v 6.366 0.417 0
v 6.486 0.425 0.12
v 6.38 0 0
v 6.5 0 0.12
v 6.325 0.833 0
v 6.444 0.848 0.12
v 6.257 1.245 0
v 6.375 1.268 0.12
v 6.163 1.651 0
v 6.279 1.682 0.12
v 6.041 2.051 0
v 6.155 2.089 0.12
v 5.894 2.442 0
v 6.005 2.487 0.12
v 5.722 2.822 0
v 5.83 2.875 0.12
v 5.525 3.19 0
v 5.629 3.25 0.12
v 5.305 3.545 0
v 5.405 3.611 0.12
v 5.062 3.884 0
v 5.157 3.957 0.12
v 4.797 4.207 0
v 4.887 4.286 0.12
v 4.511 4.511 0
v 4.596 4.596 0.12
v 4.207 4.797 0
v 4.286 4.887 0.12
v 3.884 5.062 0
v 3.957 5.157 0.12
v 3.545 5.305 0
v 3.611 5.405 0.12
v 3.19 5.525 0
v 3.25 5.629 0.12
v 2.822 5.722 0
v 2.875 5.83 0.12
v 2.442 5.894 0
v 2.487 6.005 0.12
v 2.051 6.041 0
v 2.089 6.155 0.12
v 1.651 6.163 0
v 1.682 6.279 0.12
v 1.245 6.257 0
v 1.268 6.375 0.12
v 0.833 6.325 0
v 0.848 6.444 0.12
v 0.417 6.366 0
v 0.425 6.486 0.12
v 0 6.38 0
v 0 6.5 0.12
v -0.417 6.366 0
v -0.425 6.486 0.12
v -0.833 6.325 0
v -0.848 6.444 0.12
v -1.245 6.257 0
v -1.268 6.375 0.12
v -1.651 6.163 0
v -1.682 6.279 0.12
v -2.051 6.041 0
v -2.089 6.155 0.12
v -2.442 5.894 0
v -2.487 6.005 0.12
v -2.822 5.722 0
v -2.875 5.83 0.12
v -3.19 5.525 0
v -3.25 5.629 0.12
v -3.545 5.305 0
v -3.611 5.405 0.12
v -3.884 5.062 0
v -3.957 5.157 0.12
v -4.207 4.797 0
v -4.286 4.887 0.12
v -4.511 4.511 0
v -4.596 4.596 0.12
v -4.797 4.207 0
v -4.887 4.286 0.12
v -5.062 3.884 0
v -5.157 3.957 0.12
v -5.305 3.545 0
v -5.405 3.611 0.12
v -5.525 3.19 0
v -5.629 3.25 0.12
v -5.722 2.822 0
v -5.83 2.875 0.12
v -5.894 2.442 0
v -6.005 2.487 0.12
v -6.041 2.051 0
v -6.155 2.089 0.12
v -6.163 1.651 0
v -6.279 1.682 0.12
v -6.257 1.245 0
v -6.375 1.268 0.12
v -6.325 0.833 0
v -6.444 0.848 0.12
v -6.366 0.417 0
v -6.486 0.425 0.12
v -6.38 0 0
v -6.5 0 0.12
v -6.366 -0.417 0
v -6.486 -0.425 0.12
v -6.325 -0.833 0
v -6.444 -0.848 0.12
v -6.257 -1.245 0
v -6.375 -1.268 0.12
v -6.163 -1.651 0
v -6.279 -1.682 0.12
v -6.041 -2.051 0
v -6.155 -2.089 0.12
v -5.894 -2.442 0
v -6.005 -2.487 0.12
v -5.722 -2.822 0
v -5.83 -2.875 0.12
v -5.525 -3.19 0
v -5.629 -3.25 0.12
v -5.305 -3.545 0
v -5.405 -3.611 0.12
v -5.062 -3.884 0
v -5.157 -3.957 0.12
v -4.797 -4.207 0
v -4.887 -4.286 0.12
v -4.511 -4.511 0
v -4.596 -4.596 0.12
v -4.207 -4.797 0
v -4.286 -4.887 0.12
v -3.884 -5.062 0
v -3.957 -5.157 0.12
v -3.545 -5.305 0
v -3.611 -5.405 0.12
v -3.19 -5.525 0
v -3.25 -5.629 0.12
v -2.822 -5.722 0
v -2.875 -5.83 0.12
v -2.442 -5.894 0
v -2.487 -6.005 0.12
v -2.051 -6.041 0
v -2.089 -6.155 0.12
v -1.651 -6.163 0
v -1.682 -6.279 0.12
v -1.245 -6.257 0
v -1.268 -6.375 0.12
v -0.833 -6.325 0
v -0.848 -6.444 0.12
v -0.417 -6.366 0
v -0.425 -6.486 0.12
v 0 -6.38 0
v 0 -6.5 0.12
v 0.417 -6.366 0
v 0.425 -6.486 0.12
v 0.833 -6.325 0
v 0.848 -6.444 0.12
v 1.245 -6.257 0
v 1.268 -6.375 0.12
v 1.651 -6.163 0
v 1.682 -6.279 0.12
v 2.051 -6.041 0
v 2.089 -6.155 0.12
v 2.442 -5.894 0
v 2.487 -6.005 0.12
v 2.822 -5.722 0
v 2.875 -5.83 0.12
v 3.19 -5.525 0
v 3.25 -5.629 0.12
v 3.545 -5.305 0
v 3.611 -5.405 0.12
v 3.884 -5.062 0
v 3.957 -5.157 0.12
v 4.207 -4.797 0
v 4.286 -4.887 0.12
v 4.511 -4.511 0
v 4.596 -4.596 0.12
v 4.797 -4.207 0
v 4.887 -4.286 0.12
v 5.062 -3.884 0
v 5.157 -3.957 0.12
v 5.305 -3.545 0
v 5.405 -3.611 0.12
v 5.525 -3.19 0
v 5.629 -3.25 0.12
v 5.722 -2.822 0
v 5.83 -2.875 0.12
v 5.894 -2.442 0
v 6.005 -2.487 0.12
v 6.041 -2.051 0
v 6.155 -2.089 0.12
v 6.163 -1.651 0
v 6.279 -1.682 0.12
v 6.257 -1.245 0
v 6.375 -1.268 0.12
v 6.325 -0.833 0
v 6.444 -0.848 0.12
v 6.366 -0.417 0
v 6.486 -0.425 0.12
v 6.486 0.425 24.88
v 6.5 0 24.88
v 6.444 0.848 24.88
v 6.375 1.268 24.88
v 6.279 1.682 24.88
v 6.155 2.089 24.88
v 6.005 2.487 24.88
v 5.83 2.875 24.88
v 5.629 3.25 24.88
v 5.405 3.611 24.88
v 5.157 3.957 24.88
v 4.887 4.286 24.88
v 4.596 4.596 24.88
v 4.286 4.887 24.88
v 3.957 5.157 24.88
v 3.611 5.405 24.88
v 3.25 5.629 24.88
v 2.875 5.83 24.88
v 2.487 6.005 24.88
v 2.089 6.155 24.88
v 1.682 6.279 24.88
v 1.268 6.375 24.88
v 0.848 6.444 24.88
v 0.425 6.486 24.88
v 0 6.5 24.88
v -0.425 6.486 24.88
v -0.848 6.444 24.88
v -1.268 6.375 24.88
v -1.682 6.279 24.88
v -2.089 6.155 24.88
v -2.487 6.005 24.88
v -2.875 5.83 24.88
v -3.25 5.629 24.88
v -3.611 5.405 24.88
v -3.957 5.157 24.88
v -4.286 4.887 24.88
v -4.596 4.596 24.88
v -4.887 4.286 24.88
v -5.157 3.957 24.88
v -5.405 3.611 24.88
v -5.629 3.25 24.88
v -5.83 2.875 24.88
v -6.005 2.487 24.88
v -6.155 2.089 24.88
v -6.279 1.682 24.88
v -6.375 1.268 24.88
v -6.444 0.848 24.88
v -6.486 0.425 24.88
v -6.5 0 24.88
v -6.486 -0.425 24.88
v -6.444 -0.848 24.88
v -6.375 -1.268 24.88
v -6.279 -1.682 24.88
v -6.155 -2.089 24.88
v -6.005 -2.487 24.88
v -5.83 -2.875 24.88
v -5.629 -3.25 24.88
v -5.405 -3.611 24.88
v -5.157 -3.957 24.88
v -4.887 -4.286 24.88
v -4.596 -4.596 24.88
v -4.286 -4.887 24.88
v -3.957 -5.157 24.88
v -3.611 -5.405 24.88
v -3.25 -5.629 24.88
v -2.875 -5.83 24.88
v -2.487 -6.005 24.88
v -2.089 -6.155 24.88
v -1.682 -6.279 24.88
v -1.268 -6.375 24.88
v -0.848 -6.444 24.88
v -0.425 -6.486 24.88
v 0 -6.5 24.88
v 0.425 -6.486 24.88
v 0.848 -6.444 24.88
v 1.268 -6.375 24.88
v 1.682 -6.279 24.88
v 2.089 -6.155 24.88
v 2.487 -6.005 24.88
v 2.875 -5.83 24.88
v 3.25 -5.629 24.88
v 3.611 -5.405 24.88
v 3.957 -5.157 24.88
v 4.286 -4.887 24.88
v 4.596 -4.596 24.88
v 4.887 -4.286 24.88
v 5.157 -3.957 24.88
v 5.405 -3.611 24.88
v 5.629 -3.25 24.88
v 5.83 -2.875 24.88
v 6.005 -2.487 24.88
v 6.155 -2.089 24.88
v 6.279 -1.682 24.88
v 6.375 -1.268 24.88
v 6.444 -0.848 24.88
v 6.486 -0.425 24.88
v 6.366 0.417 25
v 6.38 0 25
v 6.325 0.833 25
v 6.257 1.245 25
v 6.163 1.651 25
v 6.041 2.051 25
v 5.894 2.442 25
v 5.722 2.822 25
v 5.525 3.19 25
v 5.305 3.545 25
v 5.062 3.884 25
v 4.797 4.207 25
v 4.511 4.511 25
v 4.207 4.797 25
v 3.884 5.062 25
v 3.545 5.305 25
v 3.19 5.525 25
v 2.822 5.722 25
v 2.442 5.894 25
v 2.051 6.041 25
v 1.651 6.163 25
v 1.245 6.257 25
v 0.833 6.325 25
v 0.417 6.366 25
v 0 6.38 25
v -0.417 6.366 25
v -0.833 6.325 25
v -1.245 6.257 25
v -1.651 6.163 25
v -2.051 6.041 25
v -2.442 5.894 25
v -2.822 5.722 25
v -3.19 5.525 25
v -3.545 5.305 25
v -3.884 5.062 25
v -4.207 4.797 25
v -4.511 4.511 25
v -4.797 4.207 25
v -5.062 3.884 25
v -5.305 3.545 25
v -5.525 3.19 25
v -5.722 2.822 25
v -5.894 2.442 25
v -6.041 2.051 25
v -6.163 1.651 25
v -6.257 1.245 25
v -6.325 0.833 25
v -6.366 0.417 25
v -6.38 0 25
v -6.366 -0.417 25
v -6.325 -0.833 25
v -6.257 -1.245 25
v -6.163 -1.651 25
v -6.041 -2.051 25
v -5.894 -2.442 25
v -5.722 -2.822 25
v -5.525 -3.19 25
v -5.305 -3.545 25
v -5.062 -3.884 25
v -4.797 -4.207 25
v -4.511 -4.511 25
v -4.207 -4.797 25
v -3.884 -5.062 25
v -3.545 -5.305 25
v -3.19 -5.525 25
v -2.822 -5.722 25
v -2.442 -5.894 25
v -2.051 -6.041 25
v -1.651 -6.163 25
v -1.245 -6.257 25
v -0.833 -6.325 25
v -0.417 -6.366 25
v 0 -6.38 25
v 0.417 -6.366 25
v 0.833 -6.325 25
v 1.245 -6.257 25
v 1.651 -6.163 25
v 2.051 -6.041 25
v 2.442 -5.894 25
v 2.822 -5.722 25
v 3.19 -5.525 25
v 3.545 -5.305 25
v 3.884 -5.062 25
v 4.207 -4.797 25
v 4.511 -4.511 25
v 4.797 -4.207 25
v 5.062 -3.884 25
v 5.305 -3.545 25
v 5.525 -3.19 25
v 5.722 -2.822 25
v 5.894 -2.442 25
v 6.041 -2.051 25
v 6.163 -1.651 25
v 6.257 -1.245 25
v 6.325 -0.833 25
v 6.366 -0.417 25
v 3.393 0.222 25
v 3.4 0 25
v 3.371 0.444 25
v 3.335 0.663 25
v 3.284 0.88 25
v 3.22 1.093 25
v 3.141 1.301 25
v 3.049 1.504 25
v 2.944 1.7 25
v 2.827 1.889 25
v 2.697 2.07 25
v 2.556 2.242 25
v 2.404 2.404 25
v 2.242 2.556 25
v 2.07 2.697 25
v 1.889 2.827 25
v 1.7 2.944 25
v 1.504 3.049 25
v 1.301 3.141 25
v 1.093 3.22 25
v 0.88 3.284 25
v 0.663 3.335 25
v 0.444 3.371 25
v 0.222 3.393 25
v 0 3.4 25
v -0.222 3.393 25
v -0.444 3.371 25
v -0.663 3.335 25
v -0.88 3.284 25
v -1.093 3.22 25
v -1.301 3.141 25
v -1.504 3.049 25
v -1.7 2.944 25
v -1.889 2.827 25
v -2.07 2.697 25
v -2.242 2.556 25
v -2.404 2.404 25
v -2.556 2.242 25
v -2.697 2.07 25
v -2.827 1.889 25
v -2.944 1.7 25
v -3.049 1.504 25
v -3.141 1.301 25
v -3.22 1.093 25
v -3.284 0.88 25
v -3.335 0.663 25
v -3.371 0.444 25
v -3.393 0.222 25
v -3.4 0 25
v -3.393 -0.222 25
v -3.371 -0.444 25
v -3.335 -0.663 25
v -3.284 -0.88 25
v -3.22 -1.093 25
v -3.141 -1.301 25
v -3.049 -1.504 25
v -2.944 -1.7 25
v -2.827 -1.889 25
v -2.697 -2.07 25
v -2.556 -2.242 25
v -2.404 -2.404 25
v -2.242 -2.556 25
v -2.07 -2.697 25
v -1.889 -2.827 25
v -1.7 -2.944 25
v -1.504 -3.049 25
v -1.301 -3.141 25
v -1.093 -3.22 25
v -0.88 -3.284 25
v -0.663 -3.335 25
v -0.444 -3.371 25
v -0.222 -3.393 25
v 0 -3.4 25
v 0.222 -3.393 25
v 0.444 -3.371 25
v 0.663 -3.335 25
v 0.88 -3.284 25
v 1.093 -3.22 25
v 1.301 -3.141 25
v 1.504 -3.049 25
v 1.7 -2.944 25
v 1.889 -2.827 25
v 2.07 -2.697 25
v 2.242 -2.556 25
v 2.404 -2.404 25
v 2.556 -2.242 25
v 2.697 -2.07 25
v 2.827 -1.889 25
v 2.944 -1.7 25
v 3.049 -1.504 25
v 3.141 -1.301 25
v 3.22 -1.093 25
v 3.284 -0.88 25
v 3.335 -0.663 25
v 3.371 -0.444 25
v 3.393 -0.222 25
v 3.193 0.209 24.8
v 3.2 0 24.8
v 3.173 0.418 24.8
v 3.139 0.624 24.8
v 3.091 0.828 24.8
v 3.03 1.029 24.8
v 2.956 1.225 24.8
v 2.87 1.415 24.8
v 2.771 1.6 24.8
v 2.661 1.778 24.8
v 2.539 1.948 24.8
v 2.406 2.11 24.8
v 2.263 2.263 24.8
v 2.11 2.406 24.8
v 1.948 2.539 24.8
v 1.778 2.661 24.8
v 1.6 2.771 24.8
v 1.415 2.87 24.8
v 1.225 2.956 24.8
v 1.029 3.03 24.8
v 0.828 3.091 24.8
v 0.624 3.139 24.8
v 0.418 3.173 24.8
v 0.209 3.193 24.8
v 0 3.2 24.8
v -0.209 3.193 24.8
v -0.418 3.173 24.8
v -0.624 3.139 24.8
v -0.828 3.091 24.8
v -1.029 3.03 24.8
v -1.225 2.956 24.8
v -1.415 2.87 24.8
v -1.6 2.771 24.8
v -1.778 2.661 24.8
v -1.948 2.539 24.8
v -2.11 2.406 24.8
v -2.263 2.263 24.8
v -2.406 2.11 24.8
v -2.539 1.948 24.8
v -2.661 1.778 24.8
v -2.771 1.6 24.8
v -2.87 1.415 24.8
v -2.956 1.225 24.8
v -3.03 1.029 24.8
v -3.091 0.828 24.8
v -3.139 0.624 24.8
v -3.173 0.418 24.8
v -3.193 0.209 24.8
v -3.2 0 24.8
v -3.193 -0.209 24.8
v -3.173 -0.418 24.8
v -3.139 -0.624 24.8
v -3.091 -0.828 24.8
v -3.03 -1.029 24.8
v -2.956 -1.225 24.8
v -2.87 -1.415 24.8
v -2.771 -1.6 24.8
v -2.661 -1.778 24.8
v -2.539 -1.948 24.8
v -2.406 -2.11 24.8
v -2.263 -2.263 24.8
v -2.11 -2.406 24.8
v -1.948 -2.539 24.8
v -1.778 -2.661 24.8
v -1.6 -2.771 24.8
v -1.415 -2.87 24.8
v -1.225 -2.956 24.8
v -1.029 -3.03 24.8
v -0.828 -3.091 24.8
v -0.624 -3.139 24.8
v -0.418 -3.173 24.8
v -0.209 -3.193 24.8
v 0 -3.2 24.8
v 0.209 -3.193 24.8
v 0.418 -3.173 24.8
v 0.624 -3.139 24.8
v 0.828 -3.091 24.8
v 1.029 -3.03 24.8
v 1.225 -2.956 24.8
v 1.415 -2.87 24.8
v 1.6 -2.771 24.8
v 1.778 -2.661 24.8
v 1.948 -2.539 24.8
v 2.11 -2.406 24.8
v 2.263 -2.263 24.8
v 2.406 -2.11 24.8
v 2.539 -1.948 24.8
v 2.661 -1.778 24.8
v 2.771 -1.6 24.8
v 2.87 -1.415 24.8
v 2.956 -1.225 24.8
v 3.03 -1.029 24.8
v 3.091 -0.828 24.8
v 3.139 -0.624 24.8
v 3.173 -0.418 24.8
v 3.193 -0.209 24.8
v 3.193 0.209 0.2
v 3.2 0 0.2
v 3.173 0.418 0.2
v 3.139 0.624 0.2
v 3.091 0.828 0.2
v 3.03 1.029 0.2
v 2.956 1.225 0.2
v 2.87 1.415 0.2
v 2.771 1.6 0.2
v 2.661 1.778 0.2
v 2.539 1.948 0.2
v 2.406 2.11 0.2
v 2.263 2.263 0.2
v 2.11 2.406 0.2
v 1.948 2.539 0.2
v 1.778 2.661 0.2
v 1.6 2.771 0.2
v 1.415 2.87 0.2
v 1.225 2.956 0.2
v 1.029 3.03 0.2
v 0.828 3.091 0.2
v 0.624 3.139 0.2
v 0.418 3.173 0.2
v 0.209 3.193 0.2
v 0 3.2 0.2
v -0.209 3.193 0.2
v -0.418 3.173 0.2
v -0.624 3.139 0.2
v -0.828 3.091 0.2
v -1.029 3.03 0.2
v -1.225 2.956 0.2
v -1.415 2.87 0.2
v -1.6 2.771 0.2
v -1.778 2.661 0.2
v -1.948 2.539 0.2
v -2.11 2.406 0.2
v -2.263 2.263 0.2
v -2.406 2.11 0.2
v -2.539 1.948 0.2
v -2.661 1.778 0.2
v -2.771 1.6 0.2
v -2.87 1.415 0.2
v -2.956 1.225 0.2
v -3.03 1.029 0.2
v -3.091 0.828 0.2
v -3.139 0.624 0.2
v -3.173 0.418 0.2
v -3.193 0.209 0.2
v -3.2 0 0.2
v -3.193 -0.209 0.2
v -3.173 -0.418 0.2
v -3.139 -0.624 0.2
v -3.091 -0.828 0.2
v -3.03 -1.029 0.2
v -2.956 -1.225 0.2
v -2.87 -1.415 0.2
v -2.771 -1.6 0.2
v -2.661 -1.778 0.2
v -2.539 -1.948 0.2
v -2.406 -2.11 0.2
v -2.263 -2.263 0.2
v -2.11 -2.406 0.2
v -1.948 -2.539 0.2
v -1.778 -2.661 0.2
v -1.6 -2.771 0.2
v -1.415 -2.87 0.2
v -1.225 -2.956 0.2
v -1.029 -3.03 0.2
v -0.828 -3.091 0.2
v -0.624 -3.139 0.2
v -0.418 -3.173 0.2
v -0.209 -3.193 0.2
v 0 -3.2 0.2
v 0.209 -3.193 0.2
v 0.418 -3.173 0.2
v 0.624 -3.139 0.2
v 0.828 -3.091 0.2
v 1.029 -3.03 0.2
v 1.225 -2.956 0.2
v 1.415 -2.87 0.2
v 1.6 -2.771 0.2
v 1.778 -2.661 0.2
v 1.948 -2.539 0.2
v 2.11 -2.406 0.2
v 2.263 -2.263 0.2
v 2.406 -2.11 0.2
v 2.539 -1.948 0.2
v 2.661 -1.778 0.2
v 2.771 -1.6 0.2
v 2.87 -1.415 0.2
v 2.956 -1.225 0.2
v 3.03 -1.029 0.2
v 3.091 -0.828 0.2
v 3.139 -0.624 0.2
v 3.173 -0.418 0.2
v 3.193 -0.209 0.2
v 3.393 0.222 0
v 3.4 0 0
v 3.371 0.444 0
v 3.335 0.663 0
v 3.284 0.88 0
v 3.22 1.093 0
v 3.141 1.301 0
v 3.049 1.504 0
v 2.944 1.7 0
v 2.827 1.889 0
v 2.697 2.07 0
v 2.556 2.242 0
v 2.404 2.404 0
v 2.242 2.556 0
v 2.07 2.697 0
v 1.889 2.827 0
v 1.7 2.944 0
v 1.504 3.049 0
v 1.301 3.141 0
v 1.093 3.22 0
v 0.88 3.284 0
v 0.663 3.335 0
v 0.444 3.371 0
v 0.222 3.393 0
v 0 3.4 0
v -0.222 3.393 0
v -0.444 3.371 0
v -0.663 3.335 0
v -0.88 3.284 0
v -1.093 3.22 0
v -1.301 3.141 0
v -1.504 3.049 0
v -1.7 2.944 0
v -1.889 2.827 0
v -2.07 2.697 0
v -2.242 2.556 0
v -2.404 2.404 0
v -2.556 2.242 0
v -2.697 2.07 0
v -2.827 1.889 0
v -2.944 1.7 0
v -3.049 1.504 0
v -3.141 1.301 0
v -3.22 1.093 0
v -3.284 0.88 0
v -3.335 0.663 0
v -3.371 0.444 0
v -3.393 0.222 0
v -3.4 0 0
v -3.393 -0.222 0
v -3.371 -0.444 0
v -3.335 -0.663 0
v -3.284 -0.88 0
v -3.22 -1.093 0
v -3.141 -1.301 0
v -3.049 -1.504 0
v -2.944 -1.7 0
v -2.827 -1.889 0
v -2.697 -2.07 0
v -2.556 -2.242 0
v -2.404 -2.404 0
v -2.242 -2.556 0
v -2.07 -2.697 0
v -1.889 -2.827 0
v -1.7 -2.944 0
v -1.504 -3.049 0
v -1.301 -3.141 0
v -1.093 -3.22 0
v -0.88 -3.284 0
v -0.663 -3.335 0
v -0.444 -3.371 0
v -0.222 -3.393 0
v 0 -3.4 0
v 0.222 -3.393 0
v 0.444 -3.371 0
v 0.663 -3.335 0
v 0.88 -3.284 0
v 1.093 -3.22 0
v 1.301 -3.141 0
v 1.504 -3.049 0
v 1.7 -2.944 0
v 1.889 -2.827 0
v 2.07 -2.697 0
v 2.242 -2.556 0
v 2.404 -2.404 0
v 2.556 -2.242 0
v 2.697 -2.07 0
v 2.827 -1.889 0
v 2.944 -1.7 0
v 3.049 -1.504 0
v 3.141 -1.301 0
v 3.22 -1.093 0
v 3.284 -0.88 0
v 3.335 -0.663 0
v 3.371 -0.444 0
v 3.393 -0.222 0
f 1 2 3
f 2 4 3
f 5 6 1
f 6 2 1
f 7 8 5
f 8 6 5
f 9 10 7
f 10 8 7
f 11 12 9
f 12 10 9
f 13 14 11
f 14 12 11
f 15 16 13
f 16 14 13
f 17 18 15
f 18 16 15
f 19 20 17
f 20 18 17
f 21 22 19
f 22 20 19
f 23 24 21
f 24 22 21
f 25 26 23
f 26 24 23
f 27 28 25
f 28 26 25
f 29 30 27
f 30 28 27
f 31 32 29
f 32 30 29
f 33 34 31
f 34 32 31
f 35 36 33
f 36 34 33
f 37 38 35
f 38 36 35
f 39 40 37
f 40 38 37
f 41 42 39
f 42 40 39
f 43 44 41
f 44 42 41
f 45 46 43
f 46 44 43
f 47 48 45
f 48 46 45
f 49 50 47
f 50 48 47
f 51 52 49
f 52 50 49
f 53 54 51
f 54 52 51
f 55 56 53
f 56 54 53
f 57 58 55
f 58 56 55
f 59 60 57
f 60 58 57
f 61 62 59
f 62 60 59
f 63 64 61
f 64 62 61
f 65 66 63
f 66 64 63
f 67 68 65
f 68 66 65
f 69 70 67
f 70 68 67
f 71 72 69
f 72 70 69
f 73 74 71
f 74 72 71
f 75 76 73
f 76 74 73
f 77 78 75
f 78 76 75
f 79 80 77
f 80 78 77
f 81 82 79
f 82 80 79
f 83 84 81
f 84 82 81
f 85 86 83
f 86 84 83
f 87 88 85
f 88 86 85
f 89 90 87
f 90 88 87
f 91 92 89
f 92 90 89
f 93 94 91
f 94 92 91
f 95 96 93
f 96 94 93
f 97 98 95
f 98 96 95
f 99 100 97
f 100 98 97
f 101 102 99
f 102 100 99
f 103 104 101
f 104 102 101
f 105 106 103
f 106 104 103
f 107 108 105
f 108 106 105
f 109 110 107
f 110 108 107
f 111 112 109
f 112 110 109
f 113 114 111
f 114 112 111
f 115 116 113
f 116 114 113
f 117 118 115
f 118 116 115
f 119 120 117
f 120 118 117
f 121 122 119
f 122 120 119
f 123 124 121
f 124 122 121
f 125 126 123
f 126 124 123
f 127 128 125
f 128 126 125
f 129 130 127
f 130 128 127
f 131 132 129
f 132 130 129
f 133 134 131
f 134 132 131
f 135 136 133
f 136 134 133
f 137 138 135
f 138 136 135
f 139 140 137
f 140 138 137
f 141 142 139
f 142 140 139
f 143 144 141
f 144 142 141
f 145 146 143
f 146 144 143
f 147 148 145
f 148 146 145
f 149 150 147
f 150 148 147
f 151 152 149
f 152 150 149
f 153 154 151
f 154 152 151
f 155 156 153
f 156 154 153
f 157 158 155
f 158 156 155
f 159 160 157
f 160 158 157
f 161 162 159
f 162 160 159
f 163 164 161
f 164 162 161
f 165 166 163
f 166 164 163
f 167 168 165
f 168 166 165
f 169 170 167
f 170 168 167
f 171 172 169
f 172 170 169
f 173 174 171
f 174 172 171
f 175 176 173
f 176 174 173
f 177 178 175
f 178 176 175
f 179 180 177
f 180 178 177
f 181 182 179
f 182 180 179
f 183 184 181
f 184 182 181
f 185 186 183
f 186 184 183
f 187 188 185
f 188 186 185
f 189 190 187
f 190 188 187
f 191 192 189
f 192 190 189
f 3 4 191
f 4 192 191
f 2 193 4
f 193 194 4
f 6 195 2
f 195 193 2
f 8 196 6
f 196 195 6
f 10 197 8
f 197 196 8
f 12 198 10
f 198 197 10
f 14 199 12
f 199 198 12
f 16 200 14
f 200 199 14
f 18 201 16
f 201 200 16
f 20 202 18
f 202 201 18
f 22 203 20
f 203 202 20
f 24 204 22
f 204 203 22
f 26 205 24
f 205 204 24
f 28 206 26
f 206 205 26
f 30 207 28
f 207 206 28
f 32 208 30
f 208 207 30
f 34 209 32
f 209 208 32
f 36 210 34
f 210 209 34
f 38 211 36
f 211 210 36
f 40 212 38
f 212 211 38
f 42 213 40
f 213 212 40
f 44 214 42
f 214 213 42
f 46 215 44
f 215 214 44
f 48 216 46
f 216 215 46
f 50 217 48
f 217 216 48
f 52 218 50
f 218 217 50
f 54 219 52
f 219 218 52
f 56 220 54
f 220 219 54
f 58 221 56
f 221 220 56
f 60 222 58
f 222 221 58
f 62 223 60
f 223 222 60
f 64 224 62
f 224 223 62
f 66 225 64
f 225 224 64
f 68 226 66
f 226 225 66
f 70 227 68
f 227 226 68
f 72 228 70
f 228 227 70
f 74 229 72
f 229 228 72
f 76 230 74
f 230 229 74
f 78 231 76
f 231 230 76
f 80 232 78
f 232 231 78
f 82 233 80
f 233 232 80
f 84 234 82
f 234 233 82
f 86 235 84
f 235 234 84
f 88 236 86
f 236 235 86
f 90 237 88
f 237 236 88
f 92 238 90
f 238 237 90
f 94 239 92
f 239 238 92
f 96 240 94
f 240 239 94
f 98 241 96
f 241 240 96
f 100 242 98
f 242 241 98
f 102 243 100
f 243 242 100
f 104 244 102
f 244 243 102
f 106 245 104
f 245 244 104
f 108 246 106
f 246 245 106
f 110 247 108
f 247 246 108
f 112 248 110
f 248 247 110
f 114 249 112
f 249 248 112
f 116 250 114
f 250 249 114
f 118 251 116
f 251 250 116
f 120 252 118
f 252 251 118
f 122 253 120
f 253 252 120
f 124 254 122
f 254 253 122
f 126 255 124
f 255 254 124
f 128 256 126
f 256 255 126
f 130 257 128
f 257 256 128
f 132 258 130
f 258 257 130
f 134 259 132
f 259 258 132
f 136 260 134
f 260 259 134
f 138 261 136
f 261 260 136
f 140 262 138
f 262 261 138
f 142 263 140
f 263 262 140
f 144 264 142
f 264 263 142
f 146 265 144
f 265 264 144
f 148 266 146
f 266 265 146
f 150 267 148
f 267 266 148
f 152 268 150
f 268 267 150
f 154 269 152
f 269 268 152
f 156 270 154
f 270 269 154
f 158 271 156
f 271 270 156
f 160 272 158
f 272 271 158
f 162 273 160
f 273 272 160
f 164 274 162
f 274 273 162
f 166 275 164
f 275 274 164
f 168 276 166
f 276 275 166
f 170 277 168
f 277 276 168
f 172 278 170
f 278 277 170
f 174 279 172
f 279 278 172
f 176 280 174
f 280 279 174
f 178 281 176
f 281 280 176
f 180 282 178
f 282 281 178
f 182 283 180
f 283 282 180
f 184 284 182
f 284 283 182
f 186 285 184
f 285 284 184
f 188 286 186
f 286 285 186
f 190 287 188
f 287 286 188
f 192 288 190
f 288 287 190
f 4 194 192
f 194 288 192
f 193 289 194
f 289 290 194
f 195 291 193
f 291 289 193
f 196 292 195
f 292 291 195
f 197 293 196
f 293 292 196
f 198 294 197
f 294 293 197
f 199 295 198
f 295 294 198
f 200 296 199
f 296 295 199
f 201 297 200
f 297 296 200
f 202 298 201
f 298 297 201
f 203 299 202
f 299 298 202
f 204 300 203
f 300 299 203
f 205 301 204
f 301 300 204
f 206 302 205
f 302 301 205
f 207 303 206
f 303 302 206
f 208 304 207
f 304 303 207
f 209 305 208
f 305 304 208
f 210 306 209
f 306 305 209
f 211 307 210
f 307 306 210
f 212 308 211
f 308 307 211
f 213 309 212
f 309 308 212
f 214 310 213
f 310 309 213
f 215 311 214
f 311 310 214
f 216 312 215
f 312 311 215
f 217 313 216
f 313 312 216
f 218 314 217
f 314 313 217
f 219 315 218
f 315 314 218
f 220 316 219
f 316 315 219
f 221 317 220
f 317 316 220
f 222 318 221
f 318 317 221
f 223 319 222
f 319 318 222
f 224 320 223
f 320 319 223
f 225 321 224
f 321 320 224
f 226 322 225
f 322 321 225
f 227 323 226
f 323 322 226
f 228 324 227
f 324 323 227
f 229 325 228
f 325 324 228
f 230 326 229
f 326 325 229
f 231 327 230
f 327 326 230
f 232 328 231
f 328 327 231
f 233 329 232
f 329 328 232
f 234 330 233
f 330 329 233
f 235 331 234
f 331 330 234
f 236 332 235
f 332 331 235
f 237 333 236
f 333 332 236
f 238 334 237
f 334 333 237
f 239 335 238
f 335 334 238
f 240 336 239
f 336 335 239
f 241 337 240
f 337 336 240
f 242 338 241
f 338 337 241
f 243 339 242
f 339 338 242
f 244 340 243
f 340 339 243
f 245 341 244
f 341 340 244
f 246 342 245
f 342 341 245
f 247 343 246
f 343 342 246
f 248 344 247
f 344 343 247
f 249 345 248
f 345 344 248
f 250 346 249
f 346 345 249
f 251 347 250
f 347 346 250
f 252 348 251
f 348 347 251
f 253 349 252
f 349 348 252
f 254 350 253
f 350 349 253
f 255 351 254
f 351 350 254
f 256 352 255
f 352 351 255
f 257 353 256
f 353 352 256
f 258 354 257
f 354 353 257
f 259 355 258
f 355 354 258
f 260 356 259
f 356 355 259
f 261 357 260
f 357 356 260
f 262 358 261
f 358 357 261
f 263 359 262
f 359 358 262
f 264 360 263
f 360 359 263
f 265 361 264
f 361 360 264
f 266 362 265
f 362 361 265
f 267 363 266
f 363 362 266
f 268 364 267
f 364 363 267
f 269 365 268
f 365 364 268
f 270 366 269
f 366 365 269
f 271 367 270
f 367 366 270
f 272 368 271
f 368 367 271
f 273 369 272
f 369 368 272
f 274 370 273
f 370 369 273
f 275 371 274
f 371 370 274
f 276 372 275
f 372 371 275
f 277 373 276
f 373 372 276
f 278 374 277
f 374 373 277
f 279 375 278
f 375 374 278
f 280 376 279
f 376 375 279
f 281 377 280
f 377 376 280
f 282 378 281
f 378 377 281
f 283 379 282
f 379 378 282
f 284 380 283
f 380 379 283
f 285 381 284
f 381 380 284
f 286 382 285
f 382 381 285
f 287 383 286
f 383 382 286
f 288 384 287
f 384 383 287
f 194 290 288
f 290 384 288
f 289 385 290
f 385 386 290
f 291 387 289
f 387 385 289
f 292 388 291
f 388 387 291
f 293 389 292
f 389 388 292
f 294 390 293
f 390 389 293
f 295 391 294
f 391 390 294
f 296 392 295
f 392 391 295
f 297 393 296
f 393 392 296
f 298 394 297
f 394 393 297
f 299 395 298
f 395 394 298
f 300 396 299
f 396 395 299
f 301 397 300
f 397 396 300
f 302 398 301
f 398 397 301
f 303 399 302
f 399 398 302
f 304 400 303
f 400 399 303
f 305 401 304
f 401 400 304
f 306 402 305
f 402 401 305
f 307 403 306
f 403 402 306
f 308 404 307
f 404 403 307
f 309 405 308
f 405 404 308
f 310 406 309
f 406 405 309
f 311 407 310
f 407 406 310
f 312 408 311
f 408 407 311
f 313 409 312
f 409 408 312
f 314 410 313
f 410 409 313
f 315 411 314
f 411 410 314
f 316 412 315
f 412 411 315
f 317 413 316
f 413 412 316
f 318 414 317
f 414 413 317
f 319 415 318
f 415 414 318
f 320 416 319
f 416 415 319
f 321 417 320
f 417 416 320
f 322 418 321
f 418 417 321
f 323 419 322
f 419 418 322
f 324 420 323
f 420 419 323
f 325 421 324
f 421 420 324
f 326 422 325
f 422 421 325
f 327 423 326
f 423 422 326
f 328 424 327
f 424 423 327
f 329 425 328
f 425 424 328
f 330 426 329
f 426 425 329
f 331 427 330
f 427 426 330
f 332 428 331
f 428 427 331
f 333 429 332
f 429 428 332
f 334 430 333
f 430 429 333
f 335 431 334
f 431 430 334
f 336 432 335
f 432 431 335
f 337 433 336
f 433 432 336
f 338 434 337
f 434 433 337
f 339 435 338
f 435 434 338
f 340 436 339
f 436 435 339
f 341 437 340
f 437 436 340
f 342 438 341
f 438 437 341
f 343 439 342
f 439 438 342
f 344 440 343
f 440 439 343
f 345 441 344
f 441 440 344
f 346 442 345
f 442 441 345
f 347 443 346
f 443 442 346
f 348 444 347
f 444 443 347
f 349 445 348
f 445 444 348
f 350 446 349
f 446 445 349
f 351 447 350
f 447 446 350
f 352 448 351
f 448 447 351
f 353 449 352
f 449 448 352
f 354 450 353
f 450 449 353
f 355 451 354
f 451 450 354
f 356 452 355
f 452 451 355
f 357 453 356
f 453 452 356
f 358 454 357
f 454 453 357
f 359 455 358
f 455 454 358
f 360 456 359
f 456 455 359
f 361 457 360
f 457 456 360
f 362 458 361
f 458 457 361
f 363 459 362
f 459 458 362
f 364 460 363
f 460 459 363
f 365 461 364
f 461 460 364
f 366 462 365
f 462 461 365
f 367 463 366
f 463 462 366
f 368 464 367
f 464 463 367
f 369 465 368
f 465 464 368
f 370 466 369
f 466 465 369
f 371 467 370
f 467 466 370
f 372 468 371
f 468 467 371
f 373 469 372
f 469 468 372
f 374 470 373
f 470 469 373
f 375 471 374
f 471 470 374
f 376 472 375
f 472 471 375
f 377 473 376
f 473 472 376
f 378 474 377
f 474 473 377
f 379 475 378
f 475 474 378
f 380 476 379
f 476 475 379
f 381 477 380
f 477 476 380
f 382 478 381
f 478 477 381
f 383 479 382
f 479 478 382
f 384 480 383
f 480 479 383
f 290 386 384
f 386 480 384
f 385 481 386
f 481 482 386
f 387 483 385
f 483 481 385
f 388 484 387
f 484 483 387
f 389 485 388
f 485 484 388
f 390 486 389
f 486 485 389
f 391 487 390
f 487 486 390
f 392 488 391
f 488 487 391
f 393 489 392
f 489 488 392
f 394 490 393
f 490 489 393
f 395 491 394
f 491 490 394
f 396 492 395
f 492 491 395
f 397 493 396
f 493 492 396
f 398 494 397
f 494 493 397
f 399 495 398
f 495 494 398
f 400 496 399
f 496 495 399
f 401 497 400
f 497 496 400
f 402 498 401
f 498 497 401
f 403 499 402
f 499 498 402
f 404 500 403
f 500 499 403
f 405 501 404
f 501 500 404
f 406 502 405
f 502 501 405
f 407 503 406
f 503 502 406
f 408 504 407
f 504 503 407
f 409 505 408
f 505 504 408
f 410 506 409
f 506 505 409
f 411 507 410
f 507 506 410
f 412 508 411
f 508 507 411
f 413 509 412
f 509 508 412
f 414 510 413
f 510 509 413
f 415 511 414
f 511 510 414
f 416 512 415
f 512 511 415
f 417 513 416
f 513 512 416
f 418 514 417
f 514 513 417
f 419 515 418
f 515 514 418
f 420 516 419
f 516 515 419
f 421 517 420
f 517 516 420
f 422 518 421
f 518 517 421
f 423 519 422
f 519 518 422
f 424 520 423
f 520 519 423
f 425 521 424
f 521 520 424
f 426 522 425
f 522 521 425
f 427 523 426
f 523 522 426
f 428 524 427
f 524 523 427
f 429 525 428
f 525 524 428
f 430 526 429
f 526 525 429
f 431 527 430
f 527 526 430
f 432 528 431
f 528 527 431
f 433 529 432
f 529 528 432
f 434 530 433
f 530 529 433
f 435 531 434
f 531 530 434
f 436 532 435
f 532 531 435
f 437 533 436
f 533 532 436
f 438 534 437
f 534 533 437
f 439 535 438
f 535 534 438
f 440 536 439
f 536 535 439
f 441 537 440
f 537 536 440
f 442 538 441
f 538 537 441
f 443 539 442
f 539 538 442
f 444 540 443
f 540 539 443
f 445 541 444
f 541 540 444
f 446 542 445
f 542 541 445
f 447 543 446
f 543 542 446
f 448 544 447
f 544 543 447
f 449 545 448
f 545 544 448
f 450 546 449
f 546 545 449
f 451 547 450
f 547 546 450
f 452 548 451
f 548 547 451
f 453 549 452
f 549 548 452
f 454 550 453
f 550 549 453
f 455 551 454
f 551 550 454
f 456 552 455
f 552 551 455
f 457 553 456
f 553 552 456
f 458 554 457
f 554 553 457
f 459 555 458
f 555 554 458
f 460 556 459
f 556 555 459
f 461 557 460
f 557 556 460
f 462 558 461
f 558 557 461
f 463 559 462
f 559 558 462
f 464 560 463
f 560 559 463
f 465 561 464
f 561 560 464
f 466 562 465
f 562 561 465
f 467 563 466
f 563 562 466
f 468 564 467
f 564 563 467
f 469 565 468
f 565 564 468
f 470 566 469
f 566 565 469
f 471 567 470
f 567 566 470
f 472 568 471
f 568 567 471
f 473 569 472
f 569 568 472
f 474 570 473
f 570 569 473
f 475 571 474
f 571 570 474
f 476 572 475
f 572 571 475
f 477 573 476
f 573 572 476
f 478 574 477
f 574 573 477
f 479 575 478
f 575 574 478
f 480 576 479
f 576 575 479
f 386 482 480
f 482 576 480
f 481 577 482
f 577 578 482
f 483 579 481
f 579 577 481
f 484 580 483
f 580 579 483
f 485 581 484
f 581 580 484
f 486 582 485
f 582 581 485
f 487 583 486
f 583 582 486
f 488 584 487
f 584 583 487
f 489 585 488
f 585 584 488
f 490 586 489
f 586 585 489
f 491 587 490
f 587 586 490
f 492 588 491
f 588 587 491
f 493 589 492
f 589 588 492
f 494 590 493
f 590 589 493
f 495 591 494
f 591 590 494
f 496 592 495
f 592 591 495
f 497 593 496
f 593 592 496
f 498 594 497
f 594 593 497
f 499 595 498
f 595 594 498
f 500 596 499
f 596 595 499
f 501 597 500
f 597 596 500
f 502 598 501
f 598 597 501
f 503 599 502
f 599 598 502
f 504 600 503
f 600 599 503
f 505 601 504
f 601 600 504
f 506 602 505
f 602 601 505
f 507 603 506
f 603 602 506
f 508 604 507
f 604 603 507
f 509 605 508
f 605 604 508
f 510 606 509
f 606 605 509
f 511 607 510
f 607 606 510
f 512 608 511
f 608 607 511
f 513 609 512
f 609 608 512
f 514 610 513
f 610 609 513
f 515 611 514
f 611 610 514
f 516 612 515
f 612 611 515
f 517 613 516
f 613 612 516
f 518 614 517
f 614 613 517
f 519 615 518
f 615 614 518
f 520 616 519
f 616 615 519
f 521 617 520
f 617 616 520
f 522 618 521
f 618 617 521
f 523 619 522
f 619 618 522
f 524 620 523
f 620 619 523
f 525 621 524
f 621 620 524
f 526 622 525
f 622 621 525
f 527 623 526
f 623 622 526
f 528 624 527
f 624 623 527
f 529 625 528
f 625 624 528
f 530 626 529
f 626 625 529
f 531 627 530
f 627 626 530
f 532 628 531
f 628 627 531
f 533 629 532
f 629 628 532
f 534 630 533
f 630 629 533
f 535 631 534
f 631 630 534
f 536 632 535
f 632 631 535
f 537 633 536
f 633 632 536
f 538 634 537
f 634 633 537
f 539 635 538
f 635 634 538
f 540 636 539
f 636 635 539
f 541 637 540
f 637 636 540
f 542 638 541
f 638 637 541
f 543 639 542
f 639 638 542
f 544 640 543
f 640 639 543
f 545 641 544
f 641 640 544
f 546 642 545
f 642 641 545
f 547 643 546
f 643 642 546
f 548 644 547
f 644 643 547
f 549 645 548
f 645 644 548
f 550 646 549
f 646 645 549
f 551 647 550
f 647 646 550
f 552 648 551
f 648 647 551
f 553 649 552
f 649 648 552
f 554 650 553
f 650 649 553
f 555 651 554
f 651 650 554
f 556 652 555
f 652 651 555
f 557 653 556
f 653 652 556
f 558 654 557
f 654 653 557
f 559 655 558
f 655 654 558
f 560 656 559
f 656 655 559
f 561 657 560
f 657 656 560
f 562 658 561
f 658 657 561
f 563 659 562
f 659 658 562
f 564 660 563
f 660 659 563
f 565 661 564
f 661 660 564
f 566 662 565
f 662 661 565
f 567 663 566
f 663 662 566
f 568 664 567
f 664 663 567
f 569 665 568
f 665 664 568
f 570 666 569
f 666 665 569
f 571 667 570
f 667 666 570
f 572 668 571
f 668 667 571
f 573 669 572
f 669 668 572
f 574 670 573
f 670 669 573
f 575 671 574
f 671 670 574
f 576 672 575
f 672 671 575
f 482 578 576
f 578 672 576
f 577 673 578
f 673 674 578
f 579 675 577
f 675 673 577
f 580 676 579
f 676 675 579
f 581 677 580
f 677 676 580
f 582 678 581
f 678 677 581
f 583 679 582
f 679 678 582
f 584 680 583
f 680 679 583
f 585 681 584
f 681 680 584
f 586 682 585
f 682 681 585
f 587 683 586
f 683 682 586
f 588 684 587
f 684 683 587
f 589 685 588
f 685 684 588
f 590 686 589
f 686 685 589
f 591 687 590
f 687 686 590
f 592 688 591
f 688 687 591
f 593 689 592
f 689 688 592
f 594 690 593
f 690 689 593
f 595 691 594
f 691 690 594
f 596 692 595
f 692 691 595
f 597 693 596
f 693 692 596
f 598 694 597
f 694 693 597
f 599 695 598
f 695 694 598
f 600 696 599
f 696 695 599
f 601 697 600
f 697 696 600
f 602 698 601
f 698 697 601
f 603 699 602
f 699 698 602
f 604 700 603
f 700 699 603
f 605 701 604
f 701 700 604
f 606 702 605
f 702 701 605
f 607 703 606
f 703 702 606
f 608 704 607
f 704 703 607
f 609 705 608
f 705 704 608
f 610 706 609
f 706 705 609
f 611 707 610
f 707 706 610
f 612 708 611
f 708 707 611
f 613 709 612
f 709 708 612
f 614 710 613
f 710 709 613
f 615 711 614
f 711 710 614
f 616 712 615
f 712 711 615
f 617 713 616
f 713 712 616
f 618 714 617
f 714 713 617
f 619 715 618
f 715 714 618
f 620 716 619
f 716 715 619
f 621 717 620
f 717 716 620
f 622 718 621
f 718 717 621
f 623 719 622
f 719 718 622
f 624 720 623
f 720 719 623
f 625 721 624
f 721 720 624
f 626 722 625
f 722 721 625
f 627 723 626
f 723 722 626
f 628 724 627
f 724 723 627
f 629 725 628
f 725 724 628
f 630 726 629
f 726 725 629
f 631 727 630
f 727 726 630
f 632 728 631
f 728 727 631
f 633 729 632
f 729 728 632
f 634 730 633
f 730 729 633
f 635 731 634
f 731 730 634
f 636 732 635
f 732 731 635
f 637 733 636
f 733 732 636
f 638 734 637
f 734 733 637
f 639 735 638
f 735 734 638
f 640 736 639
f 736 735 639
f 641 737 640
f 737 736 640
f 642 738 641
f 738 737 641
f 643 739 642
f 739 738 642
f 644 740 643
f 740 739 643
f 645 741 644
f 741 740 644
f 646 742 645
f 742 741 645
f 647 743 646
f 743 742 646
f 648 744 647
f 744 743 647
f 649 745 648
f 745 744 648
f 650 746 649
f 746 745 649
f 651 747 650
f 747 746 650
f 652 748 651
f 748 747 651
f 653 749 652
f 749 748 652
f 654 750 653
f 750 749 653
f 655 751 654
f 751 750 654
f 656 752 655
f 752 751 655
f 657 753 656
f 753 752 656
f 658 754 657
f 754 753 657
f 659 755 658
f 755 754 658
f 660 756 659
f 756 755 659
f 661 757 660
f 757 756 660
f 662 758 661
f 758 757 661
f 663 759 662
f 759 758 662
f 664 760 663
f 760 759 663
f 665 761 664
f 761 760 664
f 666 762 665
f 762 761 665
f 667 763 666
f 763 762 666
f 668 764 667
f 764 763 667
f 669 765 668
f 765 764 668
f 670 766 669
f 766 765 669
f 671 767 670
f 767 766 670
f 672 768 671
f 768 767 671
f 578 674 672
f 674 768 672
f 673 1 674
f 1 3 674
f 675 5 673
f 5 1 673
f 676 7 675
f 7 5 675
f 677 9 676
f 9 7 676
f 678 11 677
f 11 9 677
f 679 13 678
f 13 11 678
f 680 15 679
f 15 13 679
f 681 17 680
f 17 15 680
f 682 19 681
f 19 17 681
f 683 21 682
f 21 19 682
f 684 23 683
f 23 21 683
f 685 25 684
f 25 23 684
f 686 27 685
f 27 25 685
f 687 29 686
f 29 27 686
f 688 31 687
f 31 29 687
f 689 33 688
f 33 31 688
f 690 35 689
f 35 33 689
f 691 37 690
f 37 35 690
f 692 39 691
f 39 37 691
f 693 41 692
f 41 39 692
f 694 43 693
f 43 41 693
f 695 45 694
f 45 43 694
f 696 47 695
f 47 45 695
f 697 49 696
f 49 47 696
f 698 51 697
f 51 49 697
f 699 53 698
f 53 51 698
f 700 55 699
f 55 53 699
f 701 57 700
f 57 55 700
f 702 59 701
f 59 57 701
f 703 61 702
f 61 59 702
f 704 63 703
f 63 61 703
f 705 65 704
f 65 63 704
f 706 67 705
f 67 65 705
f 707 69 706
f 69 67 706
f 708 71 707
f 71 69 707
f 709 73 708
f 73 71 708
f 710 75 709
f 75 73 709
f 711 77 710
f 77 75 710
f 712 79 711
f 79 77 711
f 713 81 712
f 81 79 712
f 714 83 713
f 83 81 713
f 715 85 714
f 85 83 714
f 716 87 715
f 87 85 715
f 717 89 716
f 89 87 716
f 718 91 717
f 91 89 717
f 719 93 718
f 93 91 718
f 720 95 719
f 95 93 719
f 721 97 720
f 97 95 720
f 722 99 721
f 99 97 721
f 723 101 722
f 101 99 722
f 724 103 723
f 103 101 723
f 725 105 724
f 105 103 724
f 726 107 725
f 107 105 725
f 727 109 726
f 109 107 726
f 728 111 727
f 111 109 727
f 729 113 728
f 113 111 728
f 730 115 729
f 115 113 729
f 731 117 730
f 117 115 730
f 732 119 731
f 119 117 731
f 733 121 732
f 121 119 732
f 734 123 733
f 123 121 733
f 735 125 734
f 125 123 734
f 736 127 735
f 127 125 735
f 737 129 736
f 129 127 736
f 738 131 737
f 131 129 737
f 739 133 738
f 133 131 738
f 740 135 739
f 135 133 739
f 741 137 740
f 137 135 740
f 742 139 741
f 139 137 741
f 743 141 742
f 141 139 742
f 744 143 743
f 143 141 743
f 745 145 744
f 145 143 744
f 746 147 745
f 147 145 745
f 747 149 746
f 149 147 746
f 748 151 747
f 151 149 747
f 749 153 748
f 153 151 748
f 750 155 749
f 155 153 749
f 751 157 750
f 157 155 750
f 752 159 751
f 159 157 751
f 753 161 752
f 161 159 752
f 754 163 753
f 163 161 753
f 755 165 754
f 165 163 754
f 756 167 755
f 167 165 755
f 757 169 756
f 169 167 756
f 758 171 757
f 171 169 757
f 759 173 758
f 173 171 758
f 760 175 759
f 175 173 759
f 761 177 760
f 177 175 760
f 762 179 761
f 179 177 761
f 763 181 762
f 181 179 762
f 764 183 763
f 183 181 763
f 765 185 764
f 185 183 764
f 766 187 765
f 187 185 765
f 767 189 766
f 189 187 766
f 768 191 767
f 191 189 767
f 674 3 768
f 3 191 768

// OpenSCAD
// OOMP generic catalogue model; units: mm.
// Stud length is additional to body depth. Tapping depths are model assumptions.
variant = "full"; // [full, display]
family = "spacer";
connection_type = "plain";
depth_mm = 25;
stud_length_mm = 0;
tapped_depth_mm = 0;
bore_mm = 6.4;
outer_diameter_mm = 13;
across_flats_mm = 6;
thread_nominal_diameter_mm = 3;
thread_pitch_mm = 0.5;
edge_chamfer_mm = 0.12;
mouth_chamfer_mm = 0.2;
angular_segments = 96;
samples_per_pitch = 16;

// Boundary travels up the outside, then down any tapped/plain bore.
// Equal-height rings at shoulders form the annular shoulder faces.
n = angular_segments;
threaded = family == "standoff";
has_stud = connection_type == "stud_to_tapped" || connection_type == "stud_to_stud";
two_studs = connection_type == "stud_to_stud";
through = !threaded || connection_type == "tapped_to_tapped";
pitch = thread_pitch_mm;
diameter = threaded ? thread_nominal_diameter_mm : bore_mm;
minor = diameter - 5*sqrt(3)*pitch/8;
transition = mouth_chamfer_mm + (threaded ? 5*sqrt(3)*pitch/16 : 0);
tip_chamfer = mouth_chamfer_mm + 17*sqrt(3)*pitch/48;
function sorted(v) = len(v)<=1 ? v : let(p=v[0])
    concat(sorted([for(x=v) if(x<p-1e-8) x]), [p], sorted([for(x=v) if(x>p+1e-8) x]));
function reverse(v) = [for(i=[len(v)-1:-1:0]) v[i]];
function theta(i) = i*360/n;
function fract(x) = x-floor(x);
function phase_distance(i,z) = abs(fract(z/pitch-theta(i)/360+0.5)-0.5);
function thread_r(i,z) = minor/2 + min(5*sqrt(3)*pitch/16,
    max(0,(phase_distance(i,z)-0.125)*pitch*sqrt(3)));
function stud_r(i,z,tip) = min(diameter/2 - (variant=="full" ?
    min(17*sqrt(3)*pitch/48,max(0,(phase_distance(i,z)-0.0625)*pitch*sqrt(3))) : 0),
    diameter/2-tip_chamfer+abs(z-tip));
function body_r(i,z) = (threaded ? across_flats_mm/2/cos(theta(i)%60-30) : outer_diameter_mm/2)
    - max(0,edge_chamfer_mm-min(z,depth_mm-z));
function bore_r(i,z) = max(threaded ? (variant=="full" ? thread_r(i,z) : minor/2) : diameter/2,
    diameter/2+mouth_chamfer_mm-(through ? min(z,depth_mm-z) : depth_mm-z));
function stud_z(a,b,tip) = let(count=variant=="full" ? ceil(stud_length_mm/pitch*samples_per_pitch) : 1)
    sorted(concat([for(i=[0:count]) a+(b-a)*i/count], [tip==a ? tip+tip_chamfer : tip-tip_chamfer]));
body_z = sorted([0,edge_chamfer_mm,depth_mm-edge_chamfer_mm,depth_mm]);
low = through ? 0 : depth_mm-tapped_depth_mm;
count = threaded && variant=="full" ? ceil((depth_mm-low)/pitch*samples_per_pitch) : 1;
bore_z = two_studs ? [] : reverse(sorted(concat(
    [for(i=[0:count]) low+(depth_mm-low)*i/count],
    [depth_mm-mouth_chamfer_mm,depth_mm-transition],
    through ? [mouth_chamfer_mm,transition] : [])));
// Ring descriptors: [height, kind, tip]. Kind: 0 body, 1 stud, 2 bore.
rings = concat(
    has_stud ? [for(z=stud_z(-stud_length_mm,0,-stud_length_mm)) [z,1,-stud_length_mm]] : [],
    [for(z=body_z) [z,0,0]],
    two_studs ? [for(z=stud_z(depth_mm,depth_mm+stud_length_mm,depth_mm+stud_length_mm)) [z,1,depth_mm+stud_length_mm]] : [],
    [for(z=bore_z) [z,2,0]]);
function radius(i,ring) = ring[1]==0 ? body_r(i,ring[0]) :
    ring[1]==1 ? stud_r(i,ring[0],ring[2]) : bore_r(i,ring[0]);
points = concat([for(ring=rings) for(i=[0:n-1])
    [radius(i,ring)*cos(theta(i)),radius(i,ring)*sin(theta(i)),ring[0]]],
    through ? [] : [[0,0,rings[0][0]],[0,0,rings[len(rings)-1][0]]]);
center = len(rings)*n;
last = (len(rings)-1)*n;
// OpenSCAD winding is opposite to STL winding.
faces = concat(
    [for(j=[0:len(rings)-(through ? 1 : 2)]) for(i=[0:n-1]) each
        let(a=j*n+i,b=j*n+(i+1)%n,c=((j+1)%len(rings))*n+(i+1)%n,d=((j+1)%len(rings))*n+i)
        [[a,c,b],[a,d,c]]],
    through ? [] : [for(i=[0:n-1]) each let(k=(i+1)%n)
        [[center,i,k],[center+1,last+k,last+i]]]);
assert(family=="spacer" || family=="standoff");
assert(!threaded || connection_type=="tapped_to_tapped" || has_stud);
assert(depth_mm>0 && diameter>0 && pitch>0);
assert(variant=="full" || variant=="display");
assert(n>=24 && n%12==0 && samples_per_pitch>=8);
assert(mouth_chamfer_mm>0 && mouth_chamfer_mm<depth_mm/2);
assert(edge_chamfer_mm>=0 && edge_chamfer_mm<depth_mm/2);
assert(diameter+4*max(mouth_chamfer_mm,edge_chamfer_mm) < (threaded ? across_flats_mm : outer_diameter_mm));
assert(!has_stud || stud_length_mm>2*mouth_chamfer_mm);
assert(!through || !threaded || 2*transition<depth_mm);
assert(connection_type!="stud_to_tapped" || (tapped_depth_mm>transition && tapped_depth_mm<depth_mm));
color([0.86,0.85,0.81]) polyhedron(points=points,faces=faces,convexity=20);
